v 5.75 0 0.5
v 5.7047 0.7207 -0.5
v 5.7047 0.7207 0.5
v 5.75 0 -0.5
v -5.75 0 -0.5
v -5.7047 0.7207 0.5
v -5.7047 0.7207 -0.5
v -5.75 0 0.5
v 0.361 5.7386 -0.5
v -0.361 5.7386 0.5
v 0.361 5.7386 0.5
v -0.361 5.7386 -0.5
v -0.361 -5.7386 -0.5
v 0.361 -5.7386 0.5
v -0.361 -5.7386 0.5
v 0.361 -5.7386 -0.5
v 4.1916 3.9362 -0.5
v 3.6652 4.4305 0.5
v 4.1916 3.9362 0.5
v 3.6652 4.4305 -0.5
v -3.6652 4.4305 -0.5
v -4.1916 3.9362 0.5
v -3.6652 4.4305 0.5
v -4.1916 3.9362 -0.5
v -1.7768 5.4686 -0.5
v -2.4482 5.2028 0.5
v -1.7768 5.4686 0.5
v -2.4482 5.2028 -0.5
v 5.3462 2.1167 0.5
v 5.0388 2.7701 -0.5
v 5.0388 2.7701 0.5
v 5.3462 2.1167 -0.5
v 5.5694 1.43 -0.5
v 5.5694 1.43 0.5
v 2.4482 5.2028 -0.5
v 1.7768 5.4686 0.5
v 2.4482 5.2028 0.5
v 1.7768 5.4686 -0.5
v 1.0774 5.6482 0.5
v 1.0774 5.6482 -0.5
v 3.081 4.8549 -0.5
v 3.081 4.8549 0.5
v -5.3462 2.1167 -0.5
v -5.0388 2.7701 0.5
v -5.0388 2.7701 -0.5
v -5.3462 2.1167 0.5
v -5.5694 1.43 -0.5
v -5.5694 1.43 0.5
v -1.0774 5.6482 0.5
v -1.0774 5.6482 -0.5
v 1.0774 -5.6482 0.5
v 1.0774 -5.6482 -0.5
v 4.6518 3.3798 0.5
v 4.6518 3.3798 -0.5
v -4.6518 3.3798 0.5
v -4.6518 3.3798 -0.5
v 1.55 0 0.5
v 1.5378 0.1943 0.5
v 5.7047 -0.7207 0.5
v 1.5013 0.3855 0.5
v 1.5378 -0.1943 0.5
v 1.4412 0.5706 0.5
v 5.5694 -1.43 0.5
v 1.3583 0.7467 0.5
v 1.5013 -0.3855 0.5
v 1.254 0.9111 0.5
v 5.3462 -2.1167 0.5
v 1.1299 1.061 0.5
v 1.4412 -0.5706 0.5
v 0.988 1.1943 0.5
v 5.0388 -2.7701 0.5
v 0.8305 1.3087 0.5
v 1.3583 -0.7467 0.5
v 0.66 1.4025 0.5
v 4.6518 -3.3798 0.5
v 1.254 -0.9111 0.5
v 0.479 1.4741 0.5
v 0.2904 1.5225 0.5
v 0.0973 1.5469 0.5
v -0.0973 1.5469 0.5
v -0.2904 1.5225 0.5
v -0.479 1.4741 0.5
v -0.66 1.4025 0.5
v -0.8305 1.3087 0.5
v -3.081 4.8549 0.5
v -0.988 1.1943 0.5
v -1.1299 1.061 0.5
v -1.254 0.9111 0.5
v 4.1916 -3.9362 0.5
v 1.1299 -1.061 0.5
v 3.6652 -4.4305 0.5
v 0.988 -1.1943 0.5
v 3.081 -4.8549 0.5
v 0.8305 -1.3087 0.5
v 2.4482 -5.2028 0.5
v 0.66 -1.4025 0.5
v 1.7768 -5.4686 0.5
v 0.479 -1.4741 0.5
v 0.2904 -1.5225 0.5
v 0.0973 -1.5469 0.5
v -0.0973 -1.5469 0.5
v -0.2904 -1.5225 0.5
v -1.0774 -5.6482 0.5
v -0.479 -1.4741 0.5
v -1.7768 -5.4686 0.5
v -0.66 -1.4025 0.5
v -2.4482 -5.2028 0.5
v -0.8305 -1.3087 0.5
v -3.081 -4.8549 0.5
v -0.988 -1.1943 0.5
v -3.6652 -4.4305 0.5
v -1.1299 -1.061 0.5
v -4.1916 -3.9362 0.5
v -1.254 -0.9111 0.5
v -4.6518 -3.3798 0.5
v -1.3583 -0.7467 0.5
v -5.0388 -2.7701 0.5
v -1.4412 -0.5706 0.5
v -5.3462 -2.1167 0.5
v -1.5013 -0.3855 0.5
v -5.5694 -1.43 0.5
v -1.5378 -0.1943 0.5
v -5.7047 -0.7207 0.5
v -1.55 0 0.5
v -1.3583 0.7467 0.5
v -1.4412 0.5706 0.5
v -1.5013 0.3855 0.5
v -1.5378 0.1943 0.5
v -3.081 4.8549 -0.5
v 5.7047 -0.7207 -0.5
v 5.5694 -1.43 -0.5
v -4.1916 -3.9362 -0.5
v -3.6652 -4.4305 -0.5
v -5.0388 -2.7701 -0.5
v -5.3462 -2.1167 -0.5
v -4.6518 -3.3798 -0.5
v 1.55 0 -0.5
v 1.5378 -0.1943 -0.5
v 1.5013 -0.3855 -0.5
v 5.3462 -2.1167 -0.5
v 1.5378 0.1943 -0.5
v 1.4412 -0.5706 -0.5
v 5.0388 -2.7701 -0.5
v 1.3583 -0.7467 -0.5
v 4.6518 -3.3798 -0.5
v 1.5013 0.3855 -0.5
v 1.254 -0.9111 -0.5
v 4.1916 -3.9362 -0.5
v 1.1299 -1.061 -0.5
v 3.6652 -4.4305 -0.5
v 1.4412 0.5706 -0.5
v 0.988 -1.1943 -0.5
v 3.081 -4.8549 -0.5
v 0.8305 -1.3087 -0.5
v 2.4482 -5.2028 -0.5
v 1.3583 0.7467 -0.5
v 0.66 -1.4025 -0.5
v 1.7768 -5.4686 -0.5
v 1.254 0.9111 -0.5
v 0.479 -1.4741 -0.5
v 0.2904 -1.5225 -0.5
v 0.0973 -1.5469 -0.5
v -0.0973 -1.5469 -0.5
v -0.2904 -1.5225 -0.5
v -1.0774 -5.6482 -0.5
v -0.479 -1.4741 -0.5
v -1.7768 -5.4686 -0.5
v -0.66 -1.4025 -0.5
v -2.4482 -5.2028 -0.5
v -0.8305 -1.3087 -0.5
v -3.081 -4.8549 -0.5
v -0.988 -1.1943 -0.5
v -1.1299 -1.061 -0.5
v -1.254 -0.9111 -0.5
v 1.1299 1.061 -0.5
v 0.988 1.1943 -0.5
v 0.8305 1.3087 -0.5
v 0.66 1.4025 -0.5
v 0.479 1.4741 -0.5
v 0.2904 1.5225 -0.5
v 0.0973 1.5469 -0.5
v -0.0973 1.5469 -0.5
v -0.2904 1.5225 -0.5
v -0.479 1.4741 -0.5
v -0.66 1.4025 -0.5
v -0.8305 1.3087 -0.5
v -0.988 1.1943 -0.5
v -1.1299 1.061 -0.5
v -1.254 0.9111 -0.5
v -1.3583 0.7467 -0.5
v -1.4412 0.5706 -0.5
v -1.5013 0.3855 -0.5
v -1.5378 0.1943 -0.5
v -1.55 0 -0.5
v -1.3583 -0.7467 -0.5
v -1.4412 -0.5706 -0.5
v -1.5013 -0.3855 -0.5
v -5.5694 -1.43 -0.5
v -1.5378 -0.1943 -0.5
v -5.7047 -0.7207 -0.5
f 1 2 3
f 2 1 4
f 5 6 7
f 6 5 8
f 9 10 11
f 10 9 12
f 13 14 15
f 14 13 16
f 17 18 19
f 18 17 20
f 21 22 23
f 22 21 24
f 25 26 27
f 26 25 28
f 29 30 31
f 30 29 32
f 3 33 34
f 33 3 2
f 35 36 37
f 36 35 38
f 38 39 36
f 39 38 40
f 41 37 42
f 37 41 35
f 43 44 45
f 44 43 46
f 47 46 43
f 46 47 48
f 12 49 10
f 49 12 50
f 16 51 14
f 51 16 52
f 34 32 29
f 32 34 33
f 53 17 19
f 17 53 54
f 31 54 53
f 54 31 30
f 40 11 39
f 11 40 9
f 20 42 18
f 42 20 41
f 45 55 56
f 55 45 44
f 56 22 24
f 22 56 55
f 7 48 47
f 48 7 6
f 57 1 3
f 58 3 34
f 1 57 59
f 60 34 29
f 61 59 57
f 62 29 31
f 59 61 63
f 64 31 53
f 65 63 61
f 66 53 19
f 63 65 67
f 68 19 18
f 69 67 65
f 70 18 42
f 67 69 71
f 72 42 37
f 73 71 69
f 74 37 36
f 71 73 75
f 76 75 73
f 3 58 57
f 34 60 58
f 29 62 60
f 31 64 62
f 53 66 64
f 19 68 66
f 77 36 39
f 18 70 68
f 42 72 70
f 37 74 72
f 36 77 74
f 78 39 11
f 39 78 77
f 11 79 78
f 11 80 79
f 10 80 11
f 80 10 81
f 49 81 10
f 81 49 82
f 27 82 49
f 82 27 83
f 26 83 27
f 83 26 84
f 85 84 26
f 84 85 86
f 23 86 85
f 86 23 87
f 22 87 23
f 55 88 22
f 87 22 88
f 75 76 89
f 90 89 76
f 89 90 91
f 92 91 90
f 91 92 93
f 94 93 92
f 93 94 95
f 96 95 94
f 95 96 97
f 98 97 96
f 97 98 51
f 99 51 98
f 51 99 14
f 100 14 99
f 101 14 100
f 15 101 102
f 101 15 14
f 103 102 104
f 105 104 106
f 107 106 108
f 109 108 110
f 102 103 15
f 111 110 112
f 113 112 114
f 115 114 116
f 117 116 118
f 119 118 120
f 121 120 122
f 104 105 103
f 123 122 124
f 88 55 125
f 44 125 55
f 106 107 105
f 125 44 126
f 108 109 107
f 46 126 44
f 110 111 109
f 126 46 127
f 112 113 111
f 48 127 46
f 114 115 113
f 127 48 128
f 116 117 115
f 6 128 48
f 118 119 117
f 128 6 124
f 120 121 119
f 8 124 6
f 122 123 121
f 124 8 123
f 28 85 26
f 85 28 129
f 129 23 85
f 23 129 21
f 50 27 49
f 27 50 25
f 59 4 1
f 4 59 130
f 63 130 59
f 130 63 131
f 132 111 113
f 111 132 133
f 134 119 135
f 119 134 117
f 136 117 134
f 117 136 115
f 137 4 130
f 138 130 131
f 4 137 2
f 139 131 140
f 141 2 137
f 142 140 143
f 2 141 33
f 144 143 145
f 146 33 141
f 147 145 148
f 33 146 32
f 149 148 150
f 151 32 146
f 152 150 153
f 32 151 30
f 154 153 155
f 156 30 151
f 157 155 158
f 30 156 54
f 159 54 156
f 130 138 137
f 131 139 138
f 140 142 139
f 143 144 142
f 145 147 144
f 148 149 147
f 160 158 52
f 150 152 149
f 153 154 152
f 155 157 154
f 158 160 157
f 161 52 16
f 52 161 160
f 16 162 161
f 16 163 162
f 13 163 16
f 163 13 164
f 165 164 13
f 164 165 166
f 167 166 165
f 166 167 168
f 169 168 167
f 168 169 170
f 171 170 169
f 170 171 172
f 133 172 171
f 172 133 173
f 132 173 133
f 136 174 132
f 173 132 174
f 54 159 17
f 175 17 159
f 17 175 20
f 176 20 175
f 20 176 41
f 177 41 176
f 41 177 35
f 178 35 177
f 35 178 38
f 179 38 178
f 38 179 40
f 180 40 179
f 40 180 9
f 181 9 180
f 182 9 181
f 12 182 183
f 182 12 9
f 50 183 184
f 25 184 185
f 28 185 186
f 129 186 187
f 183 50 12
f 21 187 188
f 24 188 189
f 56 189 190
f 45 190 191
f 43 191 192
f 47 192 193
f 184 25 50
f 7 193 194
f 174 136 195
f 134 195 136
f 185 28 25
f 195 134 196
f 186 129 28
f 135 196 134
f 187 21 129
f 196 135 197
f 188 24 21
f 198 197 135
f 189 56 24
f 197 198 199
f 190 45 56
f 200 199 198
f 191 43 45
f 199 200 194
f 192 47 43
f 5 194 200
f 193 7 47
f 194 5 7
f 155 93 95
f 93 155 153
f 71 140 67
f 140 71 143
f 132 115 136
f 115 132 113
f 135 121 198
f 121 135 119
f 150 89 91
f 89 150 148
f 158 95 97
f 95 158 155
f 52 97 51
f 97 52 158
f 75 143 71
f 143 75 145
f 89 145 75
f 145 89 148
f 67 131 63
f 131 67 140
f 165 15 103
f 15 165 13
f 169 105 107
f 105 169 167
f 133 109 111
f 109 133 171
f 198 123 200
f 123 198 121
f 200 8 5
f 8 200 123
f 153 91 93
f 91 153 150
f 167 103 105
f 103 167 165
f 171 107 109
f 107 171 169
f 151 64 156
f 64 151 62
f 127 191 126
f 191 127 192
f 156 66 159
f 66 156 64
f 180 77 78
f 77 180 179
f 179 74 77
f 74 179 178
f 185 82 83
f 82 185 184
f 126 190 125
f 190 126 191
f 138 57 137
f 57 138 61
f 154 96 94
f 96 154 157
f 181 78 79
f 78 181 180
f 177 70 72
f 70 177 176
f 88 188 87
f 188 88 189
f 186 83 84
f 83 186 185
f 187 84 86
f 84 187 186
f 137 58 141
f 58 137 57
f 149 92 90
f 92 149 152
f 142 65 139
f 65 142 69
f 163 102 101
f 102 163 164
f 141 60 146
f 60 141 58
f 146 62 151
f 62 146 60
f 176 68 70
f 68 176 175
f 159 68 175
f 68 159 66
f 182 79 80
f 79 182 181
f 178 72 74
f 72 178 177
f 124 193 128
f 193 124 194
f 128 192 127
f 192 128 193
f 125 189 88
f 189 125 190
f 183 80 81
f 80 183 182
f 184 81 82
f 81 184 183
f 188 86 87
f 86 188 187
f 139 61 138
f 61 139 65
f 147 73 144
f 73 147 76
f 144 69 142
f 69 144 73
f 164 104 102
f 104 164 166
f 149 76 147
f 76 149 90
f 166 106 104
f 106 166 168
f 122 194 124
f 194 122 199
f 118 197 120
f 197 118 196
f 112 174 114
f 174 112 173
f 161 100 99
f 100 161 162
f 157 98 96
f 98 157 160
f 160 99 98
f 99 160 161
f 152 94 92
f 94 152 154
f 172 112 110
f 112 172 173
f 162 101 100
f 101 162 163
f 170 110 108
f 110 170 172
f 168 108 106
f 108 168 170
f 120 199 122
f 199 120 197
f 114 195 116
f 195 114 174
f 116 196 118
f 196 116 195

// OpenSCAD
$fn = 50;


difference() {
	union() {
		translate(v = [0, 0, -0.5000000000]) {
			cylinder(h = 1, r = 5.7500000000);
		}
	}
	union() {
		translate(v = [0, 0, -100.0000000000]) {
			cylinder(h = 200, r = 1.5500000000);
		}
	}
}
